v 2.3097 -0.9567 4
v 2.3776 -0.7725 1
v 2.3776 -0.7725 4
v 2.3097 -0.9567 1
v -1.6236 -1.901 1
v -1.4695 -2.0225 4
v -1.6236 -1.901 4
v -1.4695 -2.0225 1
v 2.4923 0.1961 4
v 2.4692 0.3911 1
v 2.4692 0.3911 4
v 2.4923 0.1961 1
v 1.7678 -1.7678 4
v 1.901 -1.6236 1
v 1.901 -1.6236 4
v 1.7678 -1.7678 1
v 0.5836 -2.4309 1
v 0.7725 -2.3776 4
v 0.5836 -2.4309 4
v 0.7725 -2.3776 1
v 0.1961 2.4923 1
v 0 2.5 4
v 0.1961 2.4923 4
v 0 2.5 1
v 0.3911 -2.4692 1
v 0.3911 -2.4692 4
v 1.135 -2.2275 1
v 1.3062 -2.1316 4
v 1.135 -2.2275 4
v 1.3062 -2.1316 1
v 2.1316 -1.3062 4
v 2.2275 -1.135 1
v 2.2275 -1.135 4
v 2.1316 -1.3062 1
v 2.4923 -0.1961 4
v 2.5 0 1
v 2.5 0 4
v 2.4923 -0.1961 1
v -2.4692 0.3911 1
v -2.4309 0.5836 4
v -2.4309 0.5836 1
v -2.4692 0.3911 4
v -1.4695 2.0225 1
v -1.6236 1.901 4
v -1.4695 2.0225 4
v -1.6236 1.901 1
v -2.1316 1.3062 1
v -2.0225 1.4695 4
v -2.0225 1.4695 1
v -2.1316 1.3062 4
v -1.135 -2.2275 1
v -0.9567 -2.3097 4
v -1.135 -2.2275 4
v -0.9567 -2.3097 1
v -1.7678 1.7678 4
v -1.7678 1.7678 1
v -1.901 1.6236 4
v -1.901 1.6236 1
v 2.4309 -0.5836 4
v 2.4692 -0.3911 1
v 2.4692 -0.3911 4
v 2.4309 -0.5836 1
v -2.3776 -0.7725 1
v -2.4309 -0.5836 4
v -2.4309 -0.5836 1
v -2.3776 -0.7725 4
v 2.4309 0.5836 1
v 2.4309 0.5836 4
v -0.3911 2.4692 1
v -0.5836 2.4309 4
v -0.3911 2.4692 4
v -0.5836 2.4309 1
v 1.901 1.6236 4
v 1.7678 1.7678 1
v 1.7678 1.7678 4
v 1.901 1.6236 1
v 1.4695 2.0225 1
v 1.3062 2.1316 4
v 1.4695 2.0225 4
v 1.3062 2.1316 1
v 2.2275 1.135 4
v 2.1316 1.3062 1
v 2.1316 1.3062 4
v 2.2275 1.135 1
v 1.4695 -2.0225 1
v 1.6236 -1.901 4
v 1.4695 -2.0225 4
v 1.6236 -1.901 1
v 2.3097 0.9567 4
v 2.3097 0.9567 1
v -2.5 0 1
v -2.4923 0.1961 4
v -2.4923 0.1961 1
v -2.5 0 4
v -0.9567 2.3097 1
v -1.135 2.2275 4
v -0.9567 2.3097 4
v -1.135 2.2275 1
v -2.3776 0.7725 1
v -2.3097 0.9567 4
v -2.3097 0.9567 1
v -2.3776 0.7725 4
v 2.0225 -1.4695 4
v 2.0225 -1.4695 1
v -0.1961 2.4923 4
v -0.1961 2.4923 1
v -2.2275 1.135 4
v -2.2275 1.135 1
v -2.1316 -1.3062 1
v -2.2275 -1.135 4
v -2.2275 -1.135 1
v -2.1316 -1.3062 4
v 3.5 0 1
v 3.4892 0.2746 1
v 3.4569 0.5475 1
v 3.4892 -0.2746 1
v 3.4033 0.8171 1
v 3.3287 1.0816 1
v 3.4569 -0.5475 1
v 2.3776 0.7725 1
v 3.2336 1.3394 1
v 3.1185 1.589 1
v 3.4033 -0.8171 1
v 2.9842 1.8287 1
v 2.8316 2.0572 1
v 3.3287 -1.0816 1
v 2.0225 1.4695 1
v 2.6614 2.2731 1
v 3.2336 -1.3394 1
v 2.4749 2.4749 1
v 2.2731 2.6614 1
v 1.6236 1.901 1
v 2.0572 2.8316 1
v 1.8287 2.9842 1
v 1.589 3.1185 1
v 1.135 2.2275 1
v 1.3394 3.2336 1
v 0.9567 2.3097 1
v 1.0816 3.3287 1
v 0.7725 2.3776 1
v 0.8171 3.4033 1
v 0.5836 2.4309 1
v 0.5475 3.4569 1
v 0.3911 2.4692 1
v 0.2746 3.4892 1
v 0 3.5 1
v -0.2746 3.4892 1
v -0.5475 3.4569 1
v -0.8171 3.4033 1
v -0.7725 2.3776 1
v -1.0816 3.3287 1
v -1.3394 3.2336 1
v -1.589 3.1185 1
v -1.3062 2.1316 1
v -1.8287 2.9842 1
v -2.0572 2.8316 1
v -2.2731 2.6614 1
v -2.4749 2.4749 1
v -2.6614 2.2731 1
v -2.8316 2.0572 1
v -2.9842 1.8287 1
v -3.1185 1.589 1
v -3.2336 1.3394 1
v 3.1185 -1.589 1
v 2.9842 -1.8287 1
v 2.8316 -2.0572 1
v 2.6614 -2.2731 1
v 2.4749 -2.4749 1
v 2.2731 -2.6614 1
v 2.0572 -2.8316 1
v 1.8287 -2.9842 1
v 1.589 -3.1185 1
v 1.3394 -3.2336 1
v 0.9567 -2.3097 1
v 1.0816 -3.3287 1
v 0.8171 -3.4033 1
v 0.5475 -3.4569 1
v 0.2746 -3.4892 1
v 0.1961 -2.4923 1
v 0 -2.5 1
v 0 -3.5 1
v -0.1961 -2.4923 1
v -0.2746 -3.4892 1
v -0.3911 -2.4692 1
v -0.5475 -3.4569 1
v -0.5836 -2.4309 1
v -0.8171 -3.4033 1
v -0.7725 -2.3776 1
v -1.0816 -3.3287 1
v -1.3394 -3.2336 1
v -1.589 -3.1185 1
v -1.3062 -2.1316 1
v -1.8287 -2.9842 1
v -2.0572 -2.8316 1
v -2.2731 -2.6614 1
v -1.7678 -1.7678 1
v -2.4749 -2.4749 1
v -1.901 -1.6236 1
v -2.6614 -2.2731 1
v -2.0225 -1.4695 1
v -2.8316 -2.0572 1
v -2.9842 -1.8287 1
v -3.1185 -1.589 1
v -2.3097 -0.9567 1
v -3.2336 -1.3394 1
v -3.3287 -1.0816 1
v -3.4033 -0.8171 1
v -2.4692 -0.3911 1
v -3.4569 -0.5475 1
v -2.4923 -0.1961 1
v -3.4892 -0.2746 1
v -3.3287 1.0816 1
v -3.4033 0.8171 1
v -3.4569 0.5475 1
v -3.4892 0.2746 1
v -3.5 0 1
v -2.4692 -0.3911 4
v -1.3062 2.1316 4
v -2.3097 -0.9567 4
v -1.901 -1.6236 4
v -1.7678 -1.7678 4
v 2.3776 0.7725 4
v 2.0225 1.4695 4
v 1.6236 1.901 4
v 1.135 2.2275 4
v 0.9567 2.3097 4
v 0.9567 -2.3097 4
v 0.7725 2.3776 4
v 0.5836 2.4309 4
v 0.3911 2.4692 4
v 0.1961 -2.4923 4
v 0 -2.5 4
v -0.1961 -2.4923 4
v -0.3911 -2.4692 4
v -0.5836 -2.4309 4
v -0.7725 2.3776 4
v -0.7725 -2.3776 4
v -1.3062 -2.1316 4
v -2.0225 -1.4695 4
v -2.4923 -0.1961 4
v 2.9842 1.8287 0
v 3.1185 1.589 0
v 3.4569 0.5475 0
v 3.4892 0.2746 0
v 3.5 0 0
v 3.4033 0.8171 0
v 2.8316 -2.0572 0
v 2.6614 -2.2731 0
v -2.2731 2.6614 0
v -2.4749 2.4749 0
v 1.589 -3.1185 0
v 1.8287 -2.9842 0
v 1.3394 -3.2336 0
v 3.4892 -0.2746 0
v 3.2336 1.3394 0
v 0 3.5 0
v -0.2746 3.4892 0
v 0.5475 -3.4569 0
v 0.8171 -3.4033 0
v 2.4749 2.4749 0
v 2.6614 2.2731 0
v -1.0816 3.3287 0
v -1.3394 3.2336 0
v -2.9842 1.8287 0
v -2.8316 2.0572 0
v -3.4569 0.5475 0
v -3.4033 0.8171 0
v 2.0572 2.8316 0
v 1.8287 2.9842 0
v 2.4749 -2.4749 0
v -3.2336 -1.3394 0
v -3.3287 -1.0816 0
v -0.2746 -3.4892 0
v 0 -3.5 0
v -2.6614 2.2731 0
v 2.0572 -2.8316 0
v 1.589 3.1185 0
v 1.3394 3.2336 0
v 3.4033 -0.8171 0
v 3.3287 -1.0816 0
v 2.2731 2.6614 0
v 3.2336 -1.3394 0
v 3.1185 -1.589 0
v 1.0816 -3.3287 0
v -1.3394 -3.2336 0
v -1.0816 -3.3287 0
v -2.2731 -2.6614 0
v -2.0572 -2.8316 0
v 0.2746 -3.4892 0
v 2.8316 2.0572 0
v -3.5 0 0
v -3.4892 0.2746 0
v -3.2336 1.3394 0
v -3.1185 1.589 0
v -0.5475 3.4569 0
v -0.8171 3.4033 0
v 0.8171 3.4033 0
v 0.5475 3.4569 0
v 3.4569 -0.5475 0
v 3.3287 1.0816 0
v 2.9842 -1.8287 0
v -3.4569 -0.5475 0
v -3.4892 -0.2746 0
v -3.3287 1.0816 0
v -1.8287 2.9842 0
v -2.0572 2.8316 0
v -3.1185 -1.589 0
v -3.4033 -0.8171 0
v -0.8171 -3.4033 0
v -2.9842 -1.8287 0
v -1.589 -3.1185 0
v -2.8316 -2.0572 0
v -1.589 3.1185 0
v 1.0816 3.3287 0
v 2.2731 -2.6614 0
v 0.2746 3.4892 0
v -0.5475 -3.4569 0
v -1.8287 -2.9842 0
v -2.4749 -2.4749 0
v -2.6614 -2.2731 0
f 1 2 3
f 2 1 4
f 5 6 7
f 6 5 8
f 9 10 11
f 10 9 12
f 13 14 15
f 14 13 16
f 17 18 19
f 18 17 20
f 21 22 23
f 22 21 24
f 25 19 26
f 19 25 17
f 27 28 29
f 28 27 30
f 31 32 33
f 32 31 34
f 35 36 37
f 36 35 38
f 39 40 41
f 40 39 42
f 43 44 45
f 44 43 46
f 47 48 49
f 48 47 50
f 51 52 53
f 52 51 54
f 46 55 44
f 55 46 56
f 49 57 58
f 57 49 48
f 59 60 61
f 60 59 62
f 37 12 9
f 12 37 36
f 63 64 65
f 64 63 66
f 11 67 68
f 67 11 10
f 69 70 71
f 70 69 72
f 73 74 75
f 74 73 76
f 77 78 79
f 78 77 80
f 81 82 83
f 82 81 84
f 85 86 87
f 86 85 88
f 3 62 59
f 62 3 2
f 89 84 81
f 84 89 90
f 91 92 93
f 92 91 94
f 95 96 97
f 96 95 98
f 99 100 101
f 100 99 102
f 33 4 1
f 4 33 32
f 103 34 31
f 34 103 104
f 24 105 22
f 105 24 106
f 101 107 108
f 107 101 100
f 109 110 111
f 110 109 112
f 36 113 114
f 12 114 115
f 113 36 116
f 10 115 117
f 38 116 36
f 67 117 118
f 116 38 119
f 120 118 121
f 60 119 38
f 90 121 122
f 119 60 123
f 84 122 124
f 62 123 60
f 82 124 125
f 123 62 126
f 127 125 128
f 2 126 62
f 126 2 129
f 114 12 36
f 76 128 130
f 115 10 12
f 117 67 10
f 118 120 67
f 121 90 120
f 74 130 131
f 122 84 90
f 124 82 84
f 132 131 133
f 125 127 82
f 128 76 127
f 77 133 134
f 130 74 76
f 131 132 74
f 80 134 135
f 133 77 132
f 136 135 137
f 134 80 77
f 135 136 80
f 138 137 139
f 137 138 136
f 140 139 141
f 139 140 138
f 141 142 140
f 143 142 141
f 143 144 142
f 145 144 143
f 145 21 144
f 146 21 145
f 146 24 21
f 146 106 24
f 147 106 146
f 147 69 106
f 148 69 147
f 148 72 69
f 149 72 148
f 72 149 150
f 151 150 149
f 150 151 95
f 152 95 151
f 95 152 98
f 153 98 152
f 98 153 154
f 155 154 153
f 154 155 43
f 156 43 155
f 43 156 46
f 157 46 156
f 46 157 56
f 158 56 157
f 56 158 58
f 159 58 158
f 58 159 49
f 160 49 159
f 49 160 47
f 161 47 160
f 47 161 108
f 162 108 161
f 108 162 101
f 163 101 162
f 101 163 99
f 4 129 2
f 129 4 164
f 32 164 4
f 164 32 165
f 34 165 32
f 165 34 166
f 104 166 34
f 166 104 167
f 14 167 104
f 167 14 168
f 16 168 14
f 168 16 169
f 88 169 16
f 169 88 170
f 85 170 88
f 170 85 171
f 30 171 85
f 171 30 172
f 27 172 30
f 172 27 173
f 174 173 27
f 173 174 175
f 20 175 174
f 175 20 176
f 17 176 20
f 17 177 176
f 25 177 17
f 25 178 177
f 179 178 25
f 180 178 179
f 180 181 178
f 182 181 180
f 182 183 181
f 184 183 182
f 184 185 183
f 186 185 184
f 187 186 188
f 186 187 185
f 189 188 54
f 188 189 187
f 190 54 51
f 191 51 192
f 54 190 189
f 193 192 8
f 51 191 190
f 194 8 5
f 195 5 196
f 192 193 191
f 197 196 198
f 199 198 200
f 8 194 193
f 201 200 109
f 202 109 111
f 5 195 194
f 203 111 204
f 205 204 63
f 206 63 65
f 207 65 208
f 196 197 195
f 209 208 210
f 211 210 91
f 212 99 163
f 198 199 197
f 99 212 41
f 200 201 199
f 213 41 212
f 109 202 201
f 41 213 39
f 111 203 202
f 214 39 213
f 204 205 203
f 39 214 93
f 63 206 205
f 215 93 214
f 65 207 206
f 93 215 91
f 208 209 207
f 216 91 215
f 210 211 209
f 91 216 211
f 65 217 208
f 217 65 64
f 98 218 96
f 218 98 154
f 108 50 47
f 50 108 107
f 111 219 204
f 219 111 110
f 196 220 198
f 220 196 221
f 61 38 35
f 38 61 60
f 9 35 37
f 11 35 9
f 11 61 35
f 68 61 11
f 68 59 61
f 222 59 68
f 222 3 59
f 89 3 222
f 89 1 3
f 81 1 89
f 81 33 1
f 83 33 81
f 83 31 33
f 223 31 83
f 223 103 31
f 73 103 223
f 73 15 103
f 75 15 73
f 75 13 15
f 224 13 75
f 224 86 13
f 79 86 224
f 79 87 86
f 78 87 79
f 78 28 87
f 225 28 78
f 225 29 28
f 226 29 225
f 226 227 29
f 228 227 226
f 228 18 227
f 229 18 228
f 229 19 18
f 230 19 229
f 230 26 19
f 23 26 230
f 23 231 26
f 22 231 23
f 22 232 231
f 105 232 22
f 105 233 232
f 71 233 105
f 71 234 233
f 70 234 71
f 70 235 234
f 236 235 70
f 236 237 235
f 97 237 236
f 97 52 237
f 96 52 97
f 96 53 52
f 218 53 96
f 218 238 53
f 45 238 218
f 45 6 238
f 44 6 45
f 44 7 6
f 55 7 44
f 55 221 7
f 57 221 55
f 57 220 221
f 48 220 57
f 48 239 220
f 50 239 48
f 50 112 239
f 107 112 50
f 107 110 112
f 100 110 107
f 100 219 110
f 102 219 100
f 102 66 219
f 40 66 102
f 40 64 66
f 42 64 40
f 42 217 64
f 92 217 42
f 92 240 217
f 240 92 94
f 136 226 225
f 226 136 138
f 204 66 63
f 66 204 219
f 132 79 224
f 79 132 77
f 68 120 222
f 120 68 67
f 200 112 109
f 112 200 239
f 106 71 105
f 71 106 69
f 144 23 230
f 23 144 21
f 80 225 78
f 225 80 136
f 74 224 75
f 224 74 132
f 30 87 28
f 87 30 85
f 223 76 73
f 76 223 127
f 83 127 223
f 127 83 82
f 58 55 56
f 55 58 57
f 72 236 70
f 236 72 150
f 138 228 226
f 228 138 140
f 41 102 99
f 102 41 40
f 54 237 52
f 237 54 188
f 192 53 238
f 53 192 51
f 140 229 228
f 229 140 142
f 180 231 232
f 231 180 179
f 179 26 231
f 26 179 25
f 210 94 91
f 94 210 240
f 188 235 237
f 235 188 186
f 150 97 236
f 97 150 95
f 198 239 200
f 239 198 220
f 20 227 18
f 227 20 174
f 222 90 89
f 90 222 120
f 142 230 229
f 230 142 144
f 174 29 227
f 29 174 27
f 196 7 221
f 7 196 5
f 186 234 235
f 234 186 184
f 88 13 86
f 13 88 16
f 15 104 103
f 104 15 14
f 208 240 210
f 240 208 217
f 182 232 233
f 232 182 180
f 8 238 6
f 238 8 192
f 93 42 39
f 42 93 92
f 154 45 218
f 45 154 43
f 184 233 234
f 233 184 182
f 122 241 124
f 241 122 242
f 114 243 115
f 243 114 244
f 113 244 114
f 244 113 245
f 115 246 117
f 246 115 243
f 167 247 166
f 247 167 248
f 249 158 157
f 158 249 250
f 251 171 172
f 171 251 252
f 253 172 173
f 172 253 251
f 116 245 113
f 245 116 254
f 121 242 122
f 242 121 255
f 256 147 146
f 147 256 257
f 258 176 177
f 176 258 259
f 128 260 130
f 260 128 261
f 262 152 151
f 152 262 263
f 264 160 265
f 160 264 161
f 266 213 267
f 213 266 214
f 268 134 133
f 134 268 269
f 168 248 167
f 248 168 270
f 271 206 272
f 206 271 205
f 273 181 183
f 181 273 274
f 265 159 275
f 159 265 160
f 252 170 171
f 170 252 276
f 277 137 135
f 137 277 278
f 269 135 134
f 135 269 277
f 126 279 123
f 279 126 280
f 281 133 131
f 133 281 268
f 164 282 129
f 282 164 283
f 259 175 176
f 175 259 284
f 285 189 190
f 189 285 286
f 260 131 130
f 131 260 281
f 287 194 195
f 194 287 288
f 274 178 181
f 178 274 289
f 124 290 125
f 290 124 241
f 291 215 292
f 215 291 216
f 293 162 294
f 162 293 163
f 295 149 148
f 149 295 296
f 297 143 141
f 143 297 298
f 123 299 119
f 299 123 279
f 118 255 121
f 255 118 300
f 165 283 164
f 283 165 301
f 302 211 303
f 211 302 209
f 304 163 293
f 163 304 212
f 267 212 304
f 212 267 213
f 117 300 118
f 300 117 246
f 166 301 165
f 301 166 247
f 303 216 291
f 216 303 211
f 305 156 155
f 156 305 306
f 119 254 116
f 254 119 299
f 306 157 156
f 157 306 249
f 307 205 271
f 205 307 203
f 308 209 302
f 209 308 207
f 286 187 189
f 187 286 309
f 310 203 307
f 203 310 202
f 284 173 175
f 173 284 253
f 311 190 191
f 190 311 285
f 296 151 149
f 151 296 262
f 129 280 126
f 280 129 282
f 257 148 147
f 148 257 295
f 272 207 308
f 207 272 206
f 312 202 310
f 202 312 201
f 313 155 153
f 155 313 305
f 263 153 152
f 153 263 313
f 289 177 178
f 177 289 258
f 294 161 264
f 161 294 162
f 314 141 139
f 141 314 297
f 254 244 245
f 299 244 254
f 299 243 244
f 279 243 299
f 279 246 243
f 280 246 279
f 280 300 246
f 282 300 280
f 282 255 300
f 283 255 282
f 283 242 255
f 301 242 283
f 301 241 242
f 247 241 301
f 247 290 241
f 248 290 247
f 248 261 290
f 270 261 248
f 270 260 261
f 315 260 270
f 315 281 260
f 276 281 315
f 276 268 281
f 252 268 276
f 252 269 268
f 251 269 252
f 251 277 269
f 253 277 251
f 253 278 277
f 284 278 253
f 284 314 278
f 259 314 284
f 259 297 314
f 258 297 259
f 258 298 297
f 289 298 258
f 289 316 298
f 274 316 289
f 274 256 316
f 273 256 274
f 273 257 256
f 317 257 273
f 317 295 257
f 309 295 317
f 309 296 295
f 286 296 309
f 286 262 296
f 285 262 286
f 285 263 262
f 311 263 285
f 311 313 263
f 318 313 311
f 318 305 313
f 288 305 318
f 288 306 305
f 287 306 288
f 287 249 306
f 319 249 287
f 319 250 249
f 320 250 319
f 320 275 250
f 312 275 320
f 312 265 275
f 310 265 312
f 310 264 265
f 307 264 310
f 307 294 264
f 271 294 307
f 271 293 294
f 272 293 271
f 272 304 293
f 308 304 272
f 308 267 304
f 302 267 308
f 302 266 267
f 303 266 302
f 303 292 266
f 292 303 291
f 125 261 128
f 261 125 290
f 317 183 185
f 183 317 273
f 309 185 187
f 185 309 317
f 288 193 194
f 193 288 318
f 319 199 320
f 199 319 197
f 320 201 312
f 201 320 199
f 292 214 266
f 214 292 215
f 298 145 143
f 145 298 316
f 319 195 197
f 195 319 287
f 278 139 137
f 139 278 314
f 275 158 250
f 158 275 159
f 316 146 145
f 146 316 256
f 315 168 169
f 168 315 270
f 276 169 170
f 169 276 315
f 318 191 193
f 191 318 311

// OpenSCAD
// file: ../configurations/global.scad
// external size
case_external_x_size = 90;
case_external_y_size = 140;
case_external_z_size = 40;
case_external_panes_thickness = 4.8;

facade_front_round_edges_radius = 5;
facade_throws_margin = 5;

facade_front_fixation_throws_diameter = 3.5;

// facade corners
facade_corners_offset_lenght = 9;
facade_corners_main_x_size = 19;
facade_corners_main_y_size = 19;
facade_corners_main_thickness = 11;

facade_fn = 100;


facade_controller_coords = [
    case_external_x_size / 2,
    case_external_y_size / 2 - 30,
];


// Screen frames
screen_frame_electronic_board_margin = 3;
screen_frame_throw_diameter = 3.5;
screen_frame_piece_z_size = 1.5;
screen_frame_piece_glass_embedding_margin = 1;
screen_frame_piece_glass_embedding_z_depth = 1;
screen_frame_facade_piece_z_size = 1;
screen_frame_fn = 100;

screen_glass_visible_zone_x_margin = 0.7;
screen_glass_visible_zone_y_margin = 0.7;
screen_glass_z_size = 1;

facade_screen_coords = [
    case_external_x_size / 2,
    case_external_y_size / 2 + 30,
];


// Generics
insert_throw_diameter = 4.2;
insert_throw_length = 6 + 2;


// Controller facade
controller_breadboard_x_size_point = 28;
controller_breadboard_y_size_point = 9;

controller_facade_z_size = 2;
controller_facade_button_throw_margin = 1;

controller_facade_border_rounded_border_1 = 5;
controller_facade_border_rounded_border_2 = 4;

controller_facade_with_border_x_size = 78;
controller_facade_with_border_y_size = 45;

controller_facade_border_throws_margin = 5;
controller_facade_border_fn = 80;


// Cross Button
controller_cross_button_x_y_size = 20;
controller_cross_button_z_size = 4;
controller_cross_button_thickness = 6;
controller_cross_button_round_edges_radius = 1;
controller_cross_button_support_x_y_size = 22;
controller_cross_button_support_z_size = 1;
controller_cross_button_fn = 150;


// A and B Buttons
controller_a_b_button_diameter = 7;
controller_a_b_button_z_size = 4;
controller_a_b_button_support_diameter = 9;
controller_a_b_button_support_z_size = 1;
controller_a_b_button_fn = 80;


// small Buttons
controller_small_button_diameter = 5;
controller_small_button_z_size = 3;
controller_small_button_support_diameter = 7;
controller_small_button_support_z_size = 1;
controller_small_button_fn = 80;

// Directional cross
controller_directional_cross_points_coords = [6, 5];
controller_start_button_points_coords = [14, 3];
controller_select_button_points_coords = [18, 3];
controller_menu_button_points_coords = [14, 7];
controller_option_button_points_coords = [18, 7];
controller_a_button_points_coords = [23, 4];
controller_b_button_points_coords = [27, 6];
controller_bolt_throws_list = [
    [2, 2],
    [2, 8],
    [10, 2],
    [10, 8],
    [27, 2],
    [23, 8],
];
// file: subpieces/round-button.scad
/**
 * roundButton
 * @name roundButton
 * @description Base method for creating buttons
 * @type Supbiece
 * @parent usbChargerComponent
 */
module roundButton(
    diameter,
    button_z_size,
    support_diameter,
    support_z_size,
    $fn = $fn
) {
    union() {
        translate([0, 0, support_z_size])
            cylinder(h = button_z_size, d = diameter, center = false, $fn = $fn);

        cylinder(h = support_z_size, d = support_diameter, center = false, $fn = $fn);
    }
}
// main file
use <./subpieces/round-button.scad>

include <../configurations/global.scad>

module smallButtonPiece(
    diameter = controller_small_button_diameter,
    button_z_size = controller_small_button_z_size,
    support_diameter = controller_small_button_support_diameter,
    support_z_size = controller_small_button_support_z_size,
    $fn = controller_small_button_fn
) {

    color("DarkSlateGray")
        roundButton(
            diameter,
            button_z_size,
            support_diameter,
            support_z_size,
            $fn = $fn
        );
}

smallButtonPiece();
